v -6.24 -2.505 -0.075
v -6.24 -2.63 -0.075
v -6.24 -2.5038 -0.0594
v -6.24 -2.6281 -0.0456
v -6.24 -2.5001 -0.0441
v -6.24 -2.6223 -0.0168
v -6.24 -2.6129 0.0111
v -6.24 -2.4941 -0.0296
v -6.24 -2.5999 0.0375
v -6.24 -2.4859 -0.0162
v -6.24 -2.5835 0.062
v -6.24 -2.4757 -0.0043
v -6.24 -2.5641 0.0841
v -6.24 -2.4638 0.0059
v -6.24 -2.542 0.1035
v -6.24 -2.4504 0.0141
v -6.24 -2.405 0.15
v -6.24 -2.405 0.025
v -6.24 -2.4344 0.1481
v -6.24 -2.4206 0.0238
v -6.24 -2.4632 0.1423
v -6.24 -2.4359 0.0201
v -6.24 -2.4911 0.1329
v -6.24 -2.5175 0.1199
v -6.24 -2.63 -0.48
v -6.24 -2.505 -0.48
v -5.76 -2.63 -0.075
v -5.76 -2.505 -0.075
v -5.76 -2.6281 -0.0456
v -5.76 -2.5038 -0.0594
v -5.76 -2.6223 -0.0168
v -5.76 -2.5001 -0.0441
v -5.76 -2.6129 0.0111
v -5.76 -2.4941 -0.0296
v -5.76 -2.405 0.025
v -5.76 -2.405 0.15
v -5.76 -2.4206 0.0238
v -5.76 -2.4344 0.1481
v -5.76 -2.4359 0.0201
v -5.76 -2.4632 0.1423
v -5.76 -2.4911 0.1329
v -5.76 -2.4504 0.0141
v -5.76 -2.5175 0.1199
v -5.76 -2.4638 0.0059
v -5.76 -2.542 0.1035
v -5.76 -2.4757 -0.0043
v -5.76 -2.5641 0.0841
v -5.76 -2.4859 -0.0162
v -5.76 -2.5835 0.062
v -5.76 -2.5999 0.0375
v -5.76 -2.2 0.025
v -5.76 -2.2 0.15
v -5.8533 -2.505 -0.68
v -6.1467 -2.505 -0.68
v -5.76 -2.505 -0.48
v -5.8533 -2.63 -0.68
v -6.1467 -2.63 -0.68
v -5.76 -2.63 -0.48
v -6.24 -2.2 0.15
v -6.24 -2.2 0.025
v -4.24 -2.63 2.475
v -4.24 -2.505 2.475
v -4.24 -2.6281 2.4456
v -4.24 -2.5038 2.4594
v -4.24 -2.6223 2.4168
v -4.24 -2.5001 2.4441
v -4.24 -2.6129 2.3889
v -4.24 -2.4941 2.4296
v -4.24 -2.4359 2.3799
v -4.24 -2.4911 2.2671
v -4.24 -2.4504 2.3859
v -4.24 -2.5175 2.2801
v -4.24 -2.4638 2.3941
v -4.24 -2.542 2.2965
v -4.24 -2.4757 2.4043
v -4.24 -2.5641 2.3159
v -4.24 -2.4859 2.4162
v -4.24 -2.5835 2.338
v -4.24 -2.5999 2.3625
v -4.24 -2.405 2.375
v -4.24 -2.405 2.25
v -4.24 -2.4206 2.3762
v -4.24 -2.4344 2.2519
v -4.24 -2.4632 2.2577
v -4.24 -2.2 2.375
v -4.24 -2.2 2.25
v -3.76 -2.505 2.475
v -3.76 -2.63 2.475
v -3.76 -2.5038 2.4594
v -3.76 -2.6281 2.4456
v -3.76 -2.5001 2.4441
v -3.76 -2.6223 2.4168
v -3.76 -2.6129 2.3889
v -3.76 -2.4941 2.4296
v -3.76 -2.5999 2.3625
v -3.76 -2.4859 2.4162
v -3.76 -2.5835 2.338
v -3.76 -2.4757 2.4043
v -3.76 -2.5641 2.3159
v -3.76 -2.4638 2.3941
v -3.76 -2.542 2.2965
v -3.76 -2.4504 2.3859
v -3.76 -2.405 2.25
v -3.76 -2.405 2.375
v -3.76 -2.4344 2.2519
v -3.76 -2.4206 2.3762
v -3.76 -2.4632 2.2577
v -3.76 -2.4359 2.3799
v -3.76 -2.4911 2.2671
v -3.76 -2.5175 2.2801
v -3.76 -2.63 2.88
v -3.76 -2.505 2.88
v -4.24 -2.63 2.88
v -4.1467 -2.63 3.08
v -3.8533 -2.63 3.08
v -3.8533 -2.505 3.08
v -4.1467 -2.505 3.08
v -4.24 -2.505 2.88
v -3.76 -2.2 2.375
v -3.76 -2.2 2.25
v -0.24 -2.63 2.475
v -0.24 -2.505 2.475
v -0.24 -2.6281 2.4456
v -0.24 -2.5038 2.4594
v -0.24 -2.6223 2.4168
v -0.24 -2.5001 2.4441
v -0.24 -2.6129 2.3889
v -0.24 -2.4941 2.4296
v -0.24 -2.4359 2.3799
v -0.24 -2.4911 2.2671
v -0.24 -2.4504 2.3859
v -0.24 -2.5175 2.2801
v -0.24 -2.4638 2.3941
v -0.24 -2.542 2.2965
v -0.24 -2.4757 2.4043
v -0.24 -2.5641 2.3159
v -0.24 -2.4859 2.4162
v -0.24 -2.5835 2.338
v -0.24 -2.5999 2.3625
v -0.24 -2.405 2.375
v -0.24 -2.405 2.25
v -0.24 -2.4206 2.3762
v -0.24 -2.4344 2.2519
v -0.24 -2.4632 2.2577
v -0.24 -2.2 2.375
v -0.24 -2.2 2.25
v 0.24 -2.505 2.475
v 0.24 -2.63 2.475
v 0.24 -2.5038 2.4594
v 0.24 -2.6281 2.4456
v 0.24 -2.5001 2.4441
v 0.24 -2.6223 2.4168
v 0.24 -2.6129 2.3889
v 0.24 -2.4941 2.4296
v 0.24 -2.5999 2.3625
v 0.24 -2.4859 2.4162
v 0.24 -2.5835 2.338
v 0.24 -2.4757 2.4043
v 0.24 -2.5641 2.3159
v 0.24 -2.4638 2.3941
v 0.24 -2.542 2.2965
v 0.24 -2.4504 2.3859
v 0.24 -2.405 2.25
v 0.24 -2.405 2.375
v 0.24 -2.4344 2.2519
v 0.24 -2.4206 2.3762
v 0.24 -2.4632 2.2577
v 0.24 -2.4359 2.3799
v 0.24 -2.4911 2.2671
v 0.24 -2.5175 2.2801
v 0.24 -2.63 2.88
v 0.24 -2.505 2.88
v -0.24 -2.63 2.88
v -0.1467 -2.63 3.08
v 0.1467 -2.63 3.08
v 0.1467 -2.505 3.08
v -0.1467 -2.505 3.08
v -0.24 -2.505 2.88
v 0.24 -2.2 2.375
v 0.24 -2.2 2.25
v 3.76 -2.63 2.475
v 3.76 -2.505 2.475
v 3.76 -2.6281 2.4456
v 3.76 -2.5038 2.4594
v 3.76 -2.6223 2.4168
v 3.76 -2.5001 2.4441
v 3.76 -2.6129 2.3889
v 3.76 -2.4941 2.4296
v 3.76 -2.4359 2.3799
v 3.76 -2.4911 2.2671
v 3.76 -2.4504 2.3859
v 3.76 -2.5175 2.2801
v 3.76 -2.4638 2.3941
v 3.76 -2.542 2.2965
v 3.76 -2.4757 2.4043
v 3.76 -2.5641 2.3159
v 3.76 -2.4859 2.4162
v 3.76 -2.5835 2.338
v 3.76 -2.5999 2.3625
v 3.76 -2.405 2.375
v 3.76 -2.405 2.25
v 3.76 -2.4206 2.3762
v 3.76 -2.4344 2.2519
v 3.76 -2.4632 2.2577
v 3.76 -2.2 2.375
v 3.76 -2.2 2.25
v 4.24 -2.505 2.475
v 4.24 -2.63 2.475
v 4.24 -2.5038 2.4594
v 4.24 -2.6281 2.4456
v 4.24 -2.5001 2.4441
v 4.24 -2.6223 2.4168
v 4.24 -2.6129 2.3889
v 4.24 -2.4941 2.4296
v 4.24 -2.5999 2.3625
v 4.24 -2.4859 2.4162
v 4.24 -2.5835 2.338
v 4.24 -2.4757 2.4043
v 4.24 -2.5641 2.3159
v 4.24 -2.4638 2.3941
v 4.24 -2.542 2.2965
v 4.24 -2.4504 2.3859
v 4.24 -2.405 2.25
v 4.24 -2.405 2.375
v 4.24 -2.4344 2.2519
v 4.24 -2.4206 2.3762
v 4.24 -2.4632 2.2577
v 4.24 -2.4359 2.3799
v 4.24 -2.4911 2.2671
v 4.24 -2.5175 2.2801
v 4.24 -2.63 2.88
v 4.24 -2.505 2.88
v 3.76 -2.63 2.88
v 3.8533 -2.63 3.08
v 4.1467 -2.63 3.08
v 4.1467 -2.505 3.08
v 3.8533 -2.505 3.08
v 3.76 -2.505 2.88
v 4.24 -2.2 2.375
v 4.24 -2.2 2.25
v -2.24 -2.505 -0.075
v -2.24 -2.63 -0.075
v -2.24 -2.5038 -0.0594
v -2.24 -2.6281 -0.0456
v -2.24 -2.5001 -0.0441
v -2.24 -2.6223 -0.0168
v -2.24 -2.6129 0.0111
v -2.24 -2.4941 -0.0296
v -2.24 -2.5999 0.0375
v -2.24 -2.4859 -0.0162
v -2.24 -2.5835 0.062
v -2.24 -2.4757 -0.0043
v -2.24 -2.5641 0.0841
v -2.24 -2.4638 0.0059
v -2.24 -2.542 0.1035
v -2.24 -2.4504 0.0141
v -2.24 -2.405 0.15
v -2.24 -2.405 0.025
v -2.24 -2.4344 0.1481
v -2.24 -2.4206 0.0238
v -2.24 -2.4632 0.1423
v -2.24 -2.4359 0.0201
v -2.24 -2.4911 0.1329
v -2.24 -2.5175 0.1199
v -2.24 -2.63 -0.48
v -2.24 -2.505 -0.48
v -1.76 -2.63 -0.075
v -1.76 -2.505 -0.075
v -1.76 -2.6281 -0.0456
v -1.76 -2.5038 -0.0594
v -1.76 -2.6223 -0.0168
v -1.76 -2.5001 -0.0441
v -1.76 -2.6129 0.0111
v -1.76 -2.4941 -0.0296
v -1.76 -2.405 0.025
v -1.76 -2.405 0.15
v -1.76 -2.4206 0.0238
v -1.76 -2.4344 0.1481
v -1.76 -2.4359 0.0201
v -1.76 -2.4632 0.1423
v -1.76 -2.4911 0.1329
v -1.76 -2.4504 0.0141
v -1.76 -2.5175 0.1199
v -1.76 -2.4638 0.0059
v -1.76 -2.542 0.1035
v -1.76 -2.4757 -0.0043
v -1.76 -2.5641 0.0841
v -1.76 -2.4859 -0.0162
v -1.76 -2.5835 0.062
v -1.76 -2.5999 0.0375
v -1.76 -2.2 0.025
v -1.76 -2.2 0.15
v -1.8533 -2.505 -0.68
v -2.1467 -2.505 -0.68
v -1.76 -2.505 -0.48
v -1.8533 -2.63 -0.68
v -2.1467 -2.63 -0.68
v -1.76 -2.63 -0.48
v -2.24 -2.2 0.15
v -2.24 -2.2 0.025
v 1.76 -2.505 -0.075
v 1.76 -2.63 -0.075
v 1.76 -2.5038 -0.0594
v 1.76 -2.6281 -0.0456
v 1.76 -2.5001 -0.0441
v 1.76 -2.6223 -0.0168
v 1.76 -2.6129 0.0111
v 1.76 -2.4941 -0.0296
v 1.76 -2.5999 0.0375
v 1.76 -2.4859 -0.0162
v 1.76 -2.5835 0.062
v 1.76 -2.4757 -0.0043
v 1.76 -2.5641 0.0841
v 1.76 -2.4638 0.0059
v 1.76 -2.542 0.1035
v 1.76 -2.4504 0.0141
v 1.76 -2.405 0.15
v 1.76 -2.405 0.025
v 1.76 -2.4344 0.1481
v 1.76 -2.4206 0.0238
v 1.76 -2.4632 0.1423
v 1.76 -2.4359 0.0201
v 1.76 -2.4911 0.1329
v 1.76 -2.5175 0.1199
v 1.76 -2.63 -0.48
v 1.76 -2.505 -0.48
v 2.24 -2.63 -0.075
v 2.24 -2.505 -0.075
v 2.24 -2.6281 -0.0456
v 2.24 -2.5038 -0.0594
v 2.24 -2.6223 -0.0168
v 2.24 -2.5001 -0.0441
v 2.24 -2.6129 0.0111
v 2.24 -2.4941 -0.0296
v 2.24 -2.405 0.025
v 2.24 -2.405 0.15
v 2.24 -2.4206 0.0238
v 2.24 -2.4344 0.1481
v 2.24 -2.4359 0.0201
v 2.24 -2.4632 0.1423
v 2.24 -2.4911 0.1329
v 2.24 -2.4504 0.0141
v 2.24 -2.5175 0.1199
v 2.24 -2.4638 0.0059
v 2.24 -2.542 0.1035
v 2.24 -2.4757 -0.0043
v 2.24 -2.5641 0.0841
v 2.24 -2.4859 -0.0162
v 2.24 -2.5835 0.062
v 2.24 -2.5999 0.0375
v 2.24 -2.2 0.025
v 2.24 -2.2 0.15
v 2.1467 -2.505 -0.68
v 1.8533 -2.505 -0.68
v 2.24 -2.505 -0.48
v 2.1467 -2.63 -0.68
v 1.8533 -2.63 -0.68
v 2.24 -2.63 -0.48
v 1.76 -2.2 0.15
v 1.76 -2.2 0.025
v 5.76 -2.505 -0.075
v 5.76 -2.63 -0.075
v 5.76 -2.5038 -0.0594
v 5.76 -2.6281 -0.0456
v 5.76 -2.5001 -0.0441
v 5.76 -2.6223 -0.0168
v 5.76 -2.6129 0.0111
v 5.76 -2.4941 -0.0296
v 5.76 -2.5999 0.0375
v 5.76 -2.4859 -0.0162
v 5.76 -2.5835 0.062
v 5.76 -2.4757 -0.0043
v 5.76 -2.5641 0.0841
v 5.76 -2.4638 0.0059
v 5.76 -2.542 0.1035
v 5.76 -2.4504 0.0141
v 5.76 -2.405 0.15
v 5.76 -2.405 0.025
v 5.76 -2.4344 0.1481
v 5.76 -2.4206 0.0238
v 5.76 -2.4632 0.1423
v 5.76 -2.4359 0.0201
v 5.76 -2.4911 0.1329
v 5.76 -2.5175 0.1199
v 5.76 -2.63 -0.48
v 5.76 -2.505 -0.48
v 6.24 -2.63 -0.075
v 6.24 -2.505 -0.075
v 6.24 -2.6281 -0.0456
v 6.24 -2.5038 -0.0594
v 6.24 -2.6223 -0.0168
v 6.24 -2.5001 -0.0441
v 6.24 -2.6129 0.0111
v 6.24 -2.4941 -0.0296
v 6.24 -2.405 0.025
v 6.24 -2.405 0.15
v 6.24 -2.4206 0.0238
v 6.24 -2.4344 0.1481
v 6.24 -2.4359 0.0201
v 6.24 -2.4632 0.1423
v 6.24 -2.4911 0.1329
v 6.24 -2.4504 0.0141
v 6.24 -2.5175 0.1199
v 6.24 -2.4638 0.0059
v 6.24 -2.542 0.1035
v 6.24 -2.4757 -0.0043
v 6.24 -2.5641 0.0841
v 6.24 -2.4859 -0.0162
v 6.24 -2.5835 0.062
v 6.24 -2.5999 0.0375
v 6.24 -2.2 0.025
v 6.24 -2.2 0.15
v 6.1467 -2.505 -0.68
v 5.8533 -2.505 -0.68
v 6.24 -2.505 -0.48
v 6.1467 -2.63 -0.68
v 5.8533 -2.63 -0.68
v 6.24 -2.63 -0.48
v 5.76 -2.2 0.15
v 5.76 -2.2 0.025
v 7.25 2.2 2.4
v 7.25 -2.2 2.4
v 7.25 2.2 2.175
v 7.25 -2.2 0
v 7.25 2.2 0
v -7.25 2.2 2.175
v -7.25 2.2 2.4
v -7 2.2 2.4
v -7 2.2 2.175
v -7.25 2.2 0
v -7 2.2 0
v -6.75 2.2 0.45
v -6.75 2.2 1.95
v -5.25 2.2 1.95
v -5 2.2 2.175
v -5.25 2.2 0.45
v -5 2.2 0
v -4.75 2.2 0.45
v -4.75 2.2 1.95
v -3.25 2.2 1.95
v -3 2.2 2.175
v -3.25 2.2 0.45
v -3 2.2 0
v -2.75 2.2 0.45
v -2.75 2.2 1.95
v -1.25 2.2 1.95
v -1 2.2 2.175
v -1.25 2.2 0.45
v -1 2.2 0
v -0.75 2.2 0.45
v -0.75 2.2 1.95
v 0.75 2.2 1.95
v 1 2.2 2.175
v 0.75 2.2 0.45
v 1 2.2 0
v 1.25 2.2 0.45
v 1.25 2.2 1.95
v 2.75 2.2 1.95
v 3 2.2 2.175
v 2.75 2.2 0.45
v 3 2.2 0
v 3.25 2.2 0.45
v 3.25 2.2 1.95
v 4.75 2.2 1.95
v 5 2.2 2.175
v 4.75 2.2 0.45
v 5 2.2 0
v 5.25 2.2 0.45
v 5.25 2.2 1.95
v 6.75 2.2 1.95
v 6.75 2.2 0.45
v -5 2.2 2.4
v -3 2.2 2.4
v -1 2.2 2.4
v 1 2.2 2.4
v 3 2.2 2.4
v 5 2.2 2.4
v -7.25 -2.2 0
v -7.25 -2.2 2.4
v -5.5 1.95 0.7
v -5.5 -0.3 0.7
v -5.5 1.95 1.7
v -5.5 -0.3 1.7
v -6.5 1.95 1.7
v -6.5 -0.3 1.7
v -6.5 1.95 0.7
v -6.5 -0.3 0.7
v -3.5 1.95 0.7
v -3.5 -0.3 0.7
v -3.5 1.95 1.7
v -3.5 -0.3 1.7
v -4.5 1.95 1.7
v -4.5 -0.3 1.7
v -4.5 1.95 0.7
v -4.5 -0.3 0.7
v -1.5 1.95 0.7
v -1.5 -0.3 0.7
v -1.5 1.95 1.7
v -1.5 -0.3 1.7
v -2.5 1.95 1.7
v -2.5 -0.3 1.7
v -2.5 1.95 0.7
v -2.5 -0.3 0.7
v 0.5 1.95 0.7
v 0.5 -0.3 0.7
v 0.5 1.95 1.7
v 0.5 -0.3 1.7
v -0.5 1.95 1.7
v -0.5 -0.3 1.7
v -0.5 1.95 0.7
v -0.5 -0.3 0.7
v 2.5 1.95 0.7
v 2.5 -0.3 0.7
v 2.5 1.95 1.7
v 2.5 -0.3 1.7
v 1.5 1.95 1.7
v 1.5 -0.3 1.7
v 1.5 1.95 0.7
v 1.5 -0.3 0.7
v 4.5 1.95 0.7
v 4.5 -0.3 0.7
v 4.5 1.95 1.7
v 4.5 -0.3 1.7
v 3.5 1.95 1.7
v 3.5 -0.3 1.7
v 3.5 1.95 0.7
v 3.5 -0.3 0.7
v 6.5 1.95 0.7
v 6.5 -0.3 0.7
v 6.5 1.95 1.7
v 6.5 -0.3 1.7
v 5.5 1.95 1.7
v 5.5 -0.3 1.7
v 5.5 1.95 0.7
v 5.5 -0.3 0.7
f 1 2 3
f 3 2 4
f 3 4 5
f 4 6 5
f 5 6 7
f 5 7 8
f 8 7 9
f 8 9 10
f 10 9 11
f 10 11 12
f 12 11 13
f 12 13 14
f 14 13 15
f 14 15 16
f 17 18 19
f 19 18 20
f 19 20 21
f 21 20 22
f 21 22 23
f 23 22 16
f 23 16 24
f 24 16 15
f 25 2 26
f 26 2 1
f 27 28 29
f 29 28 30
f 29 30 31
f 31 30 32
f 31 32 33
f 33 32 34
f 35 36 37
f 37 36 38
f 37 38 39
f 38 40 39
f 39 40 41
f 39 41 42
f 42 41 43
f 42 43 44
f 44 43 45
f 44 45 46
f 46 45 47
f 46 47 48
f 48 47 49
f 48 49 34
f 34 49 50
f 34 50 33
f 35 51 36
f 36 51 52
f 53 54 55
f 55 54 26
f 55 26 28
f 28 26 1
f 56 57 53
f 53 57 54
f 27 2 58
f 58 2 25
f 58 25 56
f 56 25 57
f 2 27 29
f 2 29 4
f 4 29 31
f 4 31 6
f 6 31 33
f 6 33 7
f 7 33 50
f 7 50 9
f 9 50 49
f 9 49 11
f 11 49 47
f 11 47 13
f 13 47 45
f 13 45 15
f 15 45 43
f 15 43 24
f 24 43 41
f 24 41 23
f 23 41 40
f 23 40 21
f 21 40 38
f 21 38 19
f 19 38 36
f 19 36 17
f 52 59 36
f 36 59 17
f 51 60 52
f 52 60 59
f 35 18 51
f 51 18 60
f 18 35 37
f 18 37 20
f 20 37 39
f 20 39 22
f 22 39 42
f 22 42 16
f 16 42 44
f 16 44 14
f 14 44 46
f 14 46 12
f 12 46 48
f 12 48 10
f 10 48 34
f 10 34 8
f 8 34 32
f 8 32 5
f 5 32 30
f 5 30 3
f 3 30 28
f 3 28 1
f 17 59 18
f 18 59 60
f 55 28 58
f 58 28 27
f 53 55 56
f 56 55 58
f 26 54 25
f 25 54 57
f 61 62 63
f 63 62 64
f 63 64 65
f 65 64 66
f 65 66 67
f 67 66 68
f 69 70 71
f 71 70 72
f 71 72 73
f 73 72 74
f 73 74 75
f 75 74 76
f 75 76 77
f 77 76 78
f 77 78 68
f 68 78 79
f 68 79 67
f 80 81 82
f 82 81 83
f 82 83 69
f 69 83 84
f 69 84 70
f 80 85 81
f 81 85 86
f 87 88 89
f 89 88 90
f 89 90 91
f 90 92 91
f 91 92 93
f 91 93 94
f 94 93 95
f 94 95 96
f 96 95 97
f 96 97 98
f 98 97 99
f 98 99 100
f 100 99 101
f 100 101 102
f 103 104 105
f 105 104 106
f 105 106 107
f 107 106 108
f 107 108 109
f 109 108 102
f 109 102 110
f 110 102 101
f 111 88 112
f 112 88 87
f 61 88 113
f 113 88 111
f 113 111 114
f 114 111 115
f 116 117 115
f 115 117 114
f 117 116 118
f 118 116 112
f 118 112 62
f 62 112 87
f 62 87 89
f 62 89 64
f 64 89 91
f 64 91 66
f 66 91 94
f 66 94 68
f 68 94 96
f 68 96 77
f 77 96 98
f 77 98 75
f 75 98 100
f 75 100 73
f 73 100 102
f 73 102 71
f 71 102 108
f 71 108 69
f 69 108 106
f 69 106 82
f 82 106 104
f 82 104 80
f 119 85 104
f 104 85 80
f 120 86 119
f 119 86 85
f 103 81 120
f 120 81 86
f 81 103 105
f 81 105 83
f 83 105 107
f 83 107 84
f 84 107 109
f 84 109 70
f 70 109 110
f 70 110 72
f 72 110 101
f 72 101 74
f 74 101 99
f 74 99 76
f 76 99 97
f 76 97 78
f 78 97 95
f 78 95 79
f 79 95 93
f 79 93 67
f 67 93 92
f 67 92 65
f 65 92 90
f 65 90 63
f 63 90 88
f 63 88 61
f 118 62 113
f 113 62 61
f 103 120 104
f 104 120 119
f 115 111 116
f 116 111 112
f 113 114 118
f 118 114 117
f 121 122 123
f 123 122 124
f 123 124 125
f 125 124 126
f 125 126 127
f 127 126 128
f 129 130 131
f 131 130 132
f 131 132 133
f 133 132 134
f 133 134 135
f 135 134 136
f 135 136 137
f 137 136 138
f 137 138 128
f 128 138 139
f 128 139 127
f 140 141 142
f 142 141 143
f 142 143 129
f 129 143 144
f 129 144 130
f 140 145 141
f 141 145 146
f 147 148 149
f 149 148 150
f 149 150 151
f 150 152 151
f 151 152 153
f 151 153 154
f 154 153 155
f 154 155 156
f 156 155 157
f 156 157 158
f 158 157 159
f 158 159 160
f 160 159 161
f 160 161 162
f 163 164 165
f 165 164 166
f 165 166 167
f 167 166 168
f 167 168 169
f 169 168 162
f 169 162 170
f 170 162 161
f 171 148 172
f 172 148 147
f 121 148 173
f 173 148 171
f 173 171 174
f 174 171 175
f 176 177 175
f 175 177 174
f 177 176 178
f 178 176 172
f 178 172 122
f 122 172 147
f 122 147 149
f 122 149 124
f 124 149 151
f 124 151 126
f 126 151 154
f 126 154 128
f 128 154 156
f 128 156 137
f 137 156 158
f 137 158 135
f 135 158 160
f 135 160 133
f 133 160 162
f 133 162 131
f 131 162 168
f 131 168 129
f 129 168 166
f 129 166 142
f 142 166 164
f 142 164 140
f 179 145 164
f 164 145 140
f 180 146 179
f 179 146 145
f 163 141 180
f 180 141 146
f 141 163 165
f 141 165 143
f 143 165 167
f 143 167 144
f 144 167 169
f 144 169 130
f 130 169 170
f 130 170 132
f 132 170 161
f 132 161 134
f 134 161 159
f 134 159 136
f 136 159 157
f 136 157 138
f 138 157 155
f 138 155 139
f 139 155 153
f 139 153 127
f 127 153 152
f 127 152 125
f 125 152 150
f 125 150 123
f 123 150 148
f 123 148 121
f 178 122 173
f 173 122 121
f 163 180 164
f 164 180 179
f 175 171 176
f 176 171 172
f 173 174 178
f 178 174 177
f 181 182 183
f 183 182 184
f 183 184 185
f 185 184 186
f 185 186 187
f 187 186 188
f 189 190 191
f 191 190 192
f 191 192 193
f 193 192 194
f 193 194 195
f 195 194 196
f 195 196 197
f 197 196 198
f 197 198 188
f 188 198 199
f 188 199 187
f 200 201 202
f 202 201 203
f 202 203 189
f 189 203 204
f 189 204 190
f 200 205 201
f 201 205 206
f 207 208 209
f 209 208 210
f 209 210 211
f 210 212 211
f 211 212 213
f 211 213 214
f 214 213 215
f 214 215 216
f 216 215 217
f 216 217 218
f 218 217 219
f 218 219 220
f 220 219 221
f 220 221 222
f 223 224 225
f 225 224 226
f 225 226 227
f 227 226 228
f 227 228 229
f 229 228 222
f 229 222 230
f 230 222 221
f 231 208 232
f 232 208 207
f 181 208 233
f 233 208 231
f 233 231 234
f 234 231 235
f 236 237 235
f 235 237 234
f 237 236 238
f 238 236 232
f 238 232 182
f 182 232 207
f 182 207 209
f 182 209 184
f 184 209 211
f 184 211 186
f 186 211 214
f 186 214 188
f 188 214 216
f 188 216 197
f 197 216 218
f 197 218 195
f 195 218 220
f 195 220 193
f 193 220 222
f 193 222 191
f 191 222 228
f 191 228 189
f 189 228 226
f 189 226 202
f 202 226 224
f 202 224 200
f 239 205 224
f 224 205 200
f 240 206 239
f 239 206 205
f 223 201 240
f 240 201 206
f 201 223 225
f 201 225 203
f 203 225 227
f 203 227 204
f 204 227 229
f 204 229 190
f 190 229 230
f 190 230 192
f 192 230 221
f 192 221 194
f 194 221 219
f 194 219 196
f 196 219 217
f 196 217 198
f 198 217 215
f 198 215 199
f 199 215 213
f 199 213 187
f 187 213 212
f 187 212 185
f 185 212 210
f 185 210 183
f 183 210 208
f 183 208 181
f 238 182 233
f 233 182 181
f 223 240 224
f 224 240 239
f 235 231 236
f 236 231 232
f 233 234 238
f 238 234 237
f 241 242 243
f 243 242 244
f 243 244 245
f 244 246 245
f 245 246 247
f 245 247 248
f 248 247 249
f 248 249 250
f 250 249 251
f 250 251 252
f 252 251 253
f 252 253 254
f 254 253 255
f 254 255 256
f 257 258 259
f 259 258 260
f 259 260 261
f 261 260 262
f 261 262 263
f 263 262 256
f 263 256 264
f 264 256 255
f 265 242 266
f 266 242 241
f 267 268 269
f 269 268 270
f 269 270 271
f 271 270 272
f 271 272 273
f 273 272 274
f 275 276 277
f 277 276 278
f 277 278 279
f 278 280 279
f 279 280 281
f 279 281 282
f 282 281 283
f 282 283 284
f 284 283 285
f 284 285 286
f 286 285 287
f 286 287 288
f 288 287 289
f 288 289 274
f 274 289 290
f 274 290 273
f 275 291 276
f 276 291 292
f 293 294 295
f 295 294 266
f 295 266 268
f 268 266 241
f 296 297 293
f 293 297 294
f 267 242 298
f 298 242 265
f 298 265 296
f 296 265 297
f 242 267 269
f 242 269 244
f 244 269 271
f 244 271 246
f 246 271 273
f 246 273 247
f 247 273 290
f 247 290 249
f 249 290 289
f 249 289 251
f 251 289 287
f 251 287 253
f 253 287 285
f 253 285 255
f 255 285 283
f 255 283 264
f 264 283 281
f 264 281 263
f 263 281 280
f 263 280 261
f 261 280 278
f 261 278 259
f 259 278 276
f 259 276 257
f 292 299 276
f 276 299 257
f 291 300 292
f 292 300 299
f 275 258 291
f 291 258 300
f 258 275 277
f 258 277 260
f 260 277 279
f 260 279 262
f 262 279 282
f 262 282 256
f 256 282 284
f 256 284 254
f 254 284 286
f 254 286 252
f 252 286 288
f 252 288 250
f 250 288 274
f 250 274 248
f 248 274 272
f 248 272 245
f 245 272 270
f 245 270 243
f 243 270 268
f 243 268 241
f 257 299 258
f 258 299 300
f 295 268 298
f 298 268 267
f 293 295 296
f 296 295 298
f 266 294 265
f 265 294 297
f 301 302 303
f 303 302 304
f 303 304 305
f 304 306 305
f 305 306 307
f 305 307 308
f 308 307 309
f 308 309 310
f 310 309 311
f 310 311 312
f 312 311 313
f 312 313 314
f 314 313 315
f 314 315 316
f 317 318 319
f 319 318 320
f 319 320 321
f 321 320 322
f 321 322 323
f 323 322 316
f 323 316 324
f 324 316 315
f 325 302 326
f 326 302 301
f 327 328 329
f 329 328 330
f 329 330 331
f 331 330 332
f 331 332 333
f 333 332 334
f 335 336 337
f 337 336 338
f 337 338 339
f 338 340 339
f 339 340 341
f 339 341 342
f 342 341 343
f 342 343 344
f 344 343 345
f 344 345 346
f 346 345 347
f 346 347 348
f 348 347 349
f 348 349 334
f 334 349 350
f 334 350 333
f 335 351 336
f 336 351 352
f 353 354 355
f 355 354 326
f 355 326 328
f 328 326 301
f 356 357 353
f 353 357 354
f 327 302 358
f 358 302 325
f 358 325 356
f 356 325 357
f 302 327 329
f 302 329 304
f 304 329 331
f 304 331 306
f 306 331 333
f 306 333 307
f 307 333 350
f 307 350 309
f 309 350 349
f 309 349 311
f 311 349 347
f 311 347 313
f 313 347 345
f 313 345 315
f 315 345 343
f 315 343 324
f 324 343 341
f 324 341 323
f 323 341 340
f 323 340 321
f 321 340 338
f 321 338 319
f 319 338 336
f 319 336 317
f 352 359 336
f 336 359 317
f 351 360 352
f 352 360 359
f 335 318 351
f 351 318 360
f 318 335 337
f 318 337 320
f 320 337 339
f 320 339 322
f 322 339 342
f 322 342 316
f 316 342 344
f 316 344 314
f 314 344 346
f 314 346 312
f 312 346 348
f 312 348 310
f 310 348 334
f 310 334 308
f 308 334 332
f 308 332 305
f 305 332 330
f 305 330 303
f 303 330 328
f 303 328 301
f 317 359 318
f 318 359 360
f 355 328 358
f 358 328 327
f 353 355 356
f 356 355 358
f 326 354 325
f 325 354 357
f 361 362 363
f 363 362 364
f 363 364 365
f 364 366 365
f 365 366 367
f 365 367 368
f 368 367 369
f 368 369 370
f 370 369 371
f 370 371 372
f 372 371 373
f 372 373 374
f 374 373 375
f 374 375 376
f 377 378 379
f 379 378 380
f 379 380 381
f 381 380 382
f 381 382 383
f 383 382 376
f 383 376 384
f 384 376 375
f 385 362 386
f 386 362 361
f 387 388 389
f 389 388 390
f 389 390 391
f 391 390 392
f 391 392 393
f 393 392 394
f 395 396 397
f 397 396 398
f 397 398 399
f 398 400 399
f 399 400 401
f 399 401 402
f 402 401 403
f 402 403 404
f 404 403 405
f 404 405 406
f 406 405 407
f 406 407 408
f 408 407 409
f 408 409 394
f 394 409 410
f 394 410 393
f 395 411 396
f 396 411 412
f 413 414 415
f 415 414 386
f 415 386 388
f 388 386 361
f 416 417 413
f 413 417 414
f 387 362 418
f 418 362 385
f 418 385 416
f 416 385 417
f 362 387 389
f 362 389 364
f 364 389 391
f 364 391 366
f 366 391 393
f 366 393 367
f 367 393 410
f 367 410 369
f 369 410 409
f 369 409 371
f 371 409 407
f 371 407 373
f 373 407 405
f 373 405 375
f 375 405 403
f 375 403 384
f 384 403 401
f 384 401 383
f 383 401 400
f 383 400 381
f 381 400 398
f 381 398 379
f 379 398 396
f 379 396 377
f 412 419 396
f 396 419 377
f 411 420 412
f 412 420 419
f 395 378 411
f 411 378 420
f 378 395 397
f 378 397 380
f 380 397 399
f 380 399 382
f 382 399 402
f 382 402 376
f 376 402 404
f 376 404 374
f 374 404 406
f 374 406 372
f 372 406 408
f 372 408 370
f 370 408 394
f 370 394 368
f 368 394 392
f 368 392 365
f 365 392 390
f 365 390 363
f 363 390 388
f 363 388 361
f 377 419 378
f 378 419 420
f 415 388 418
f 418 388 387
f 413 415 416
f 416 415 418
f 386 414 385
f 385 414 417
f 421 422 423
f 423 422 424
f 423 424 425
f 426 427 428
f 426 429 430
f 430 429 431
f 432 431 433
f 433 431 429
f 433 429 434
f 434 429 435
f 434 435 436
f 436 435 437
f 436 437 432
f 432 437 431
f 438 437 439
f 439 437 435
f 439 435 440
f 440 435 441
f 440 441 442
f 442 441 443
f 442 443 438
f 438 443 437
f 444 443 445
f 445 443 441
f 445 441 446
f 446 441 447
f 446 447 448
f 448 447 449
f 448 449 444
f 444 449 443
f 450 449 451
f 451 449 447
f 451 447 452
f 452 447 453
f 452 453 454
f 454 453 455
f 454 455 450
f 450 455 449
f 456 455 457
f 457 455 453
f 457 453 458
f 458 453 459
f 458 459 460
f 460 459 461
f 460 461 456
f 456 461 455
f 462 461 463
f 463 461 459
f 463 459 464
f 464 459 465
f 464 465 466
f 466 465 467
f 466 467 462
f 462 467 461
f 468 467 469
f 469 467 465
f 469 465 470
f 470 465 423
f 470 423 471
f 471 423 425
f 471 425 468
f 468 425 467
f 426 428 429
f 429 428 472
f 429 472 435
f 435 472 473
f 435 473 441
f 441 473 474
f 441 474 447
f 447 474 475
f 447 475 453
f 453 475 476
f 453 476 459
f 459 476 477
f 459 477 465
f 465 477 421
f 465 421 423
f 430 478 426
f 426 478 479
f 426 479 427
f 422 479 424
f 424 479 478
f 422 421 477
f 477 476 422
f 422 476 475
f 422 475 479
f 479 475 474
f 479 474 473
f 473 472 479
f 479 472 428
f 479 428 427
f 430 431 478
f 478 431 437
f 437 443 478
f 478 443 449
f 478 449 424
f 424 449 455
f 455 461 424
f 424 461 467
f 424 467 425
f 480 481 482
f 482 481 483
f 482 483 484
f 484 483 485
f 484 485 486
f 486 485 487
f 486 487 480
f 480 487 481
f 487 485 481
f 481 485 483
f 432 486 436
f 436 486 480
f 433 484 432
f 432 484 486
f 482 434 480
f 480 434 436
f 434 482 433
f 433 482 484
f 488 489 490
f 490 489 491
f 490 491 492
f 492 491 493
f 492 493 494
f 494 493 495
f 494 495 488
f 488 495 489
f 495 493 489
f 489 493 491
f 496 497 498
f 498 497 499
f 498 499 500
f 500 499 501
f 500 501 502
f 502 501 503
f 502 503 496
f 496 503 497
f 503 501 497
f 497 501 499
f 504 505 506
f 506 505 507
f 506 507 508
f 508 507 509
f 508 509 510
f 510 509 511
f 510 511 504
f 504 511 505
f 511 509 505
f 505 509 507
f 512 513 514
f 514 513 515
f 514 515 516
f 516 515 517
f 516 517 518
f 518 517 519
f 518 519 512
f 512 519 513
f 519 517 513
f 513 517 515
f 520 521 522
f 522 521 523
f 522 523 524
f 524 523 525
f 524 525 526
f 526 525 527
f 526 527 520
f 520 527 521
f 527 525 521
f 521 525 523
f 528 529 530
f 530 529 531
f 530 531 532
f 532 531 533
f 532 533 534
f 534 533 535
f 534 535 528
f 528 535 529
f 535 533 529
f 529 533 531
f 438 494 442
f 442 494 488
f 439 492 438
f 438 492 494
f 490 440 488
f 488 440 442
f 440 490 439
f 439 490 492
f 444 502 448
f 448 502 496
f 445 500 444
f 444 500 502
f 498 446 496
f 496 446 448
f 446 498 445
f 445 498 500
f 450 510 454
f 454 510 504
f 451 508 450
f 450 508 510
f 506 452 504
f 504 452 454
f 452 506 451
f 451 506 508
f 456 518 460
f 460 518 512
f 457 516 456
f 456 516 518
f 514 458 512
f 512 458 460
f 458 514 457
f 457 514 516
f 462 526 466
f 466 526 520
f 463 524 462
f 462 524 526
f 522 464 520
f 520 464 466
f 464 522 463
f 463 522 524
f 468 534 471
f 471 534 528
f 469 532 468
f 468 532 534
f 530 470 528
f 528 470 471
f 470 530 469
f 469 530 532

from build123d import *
from OCP.BRepFilletAPI import BRepFilletAPI_MakeChamfer

# Parameters (mm, degrees)
SKETCH1_W                  = 14.5
SKETCH1_H                  = 4.4
BOSS_EXTRUDE1_DEPTH        = 2.4
SKETCH2_W                  = 1
SKETCH2_H                  = 1
CUT_EXTRUDE1_DEPTH         = 2.5
CHAMFER1_SIZE              = 0.25
LPATTERN6_COUNT            = 7
LPATTERN6_PITCH            = 2
CHAMFER1_OF_LPATTERN6_SIZE = 0.25
BASE_FLANGE2_DEPTH         = 0.24
BASE_FLANGE2_DEPTH_BACK    = 0.24
BASE_FLANGE3_DEPTH         = 0.24
BASE_FLANGE3_DEPTH_BACK    = 0.24
CHAMFER3_SIZE              = 0.2
CHAMFER3_SIZE2             = 0.093261532
CHAMFER4_SIZE              = 0.2
CHAMFER4_SIZE2             = 0.093261532
LPATTERN4_COUNT            = 4
LPATTERN4_PITCH            = 4
LPATTERN3_COUNT            = 3
LPATTERN3_PITCH            = 4


# Sheet-metal steps are written as plain solids
with BuildPart() as part:
    # Sketch1 → Boss-Extrude1 (new body)
    with BuildSketch(Plane.XY):
        Rectangle(SKETCH1_W, SKETCH1_H)
    extrude(amount=BOSS_EXTRUDE1_DEPTH)

    # Sketch2 → Cut-Extrude1 (cut)
    with BuildSketch(Plane(origin=(0, 2.2, 0), x_dir=(1, 0, 0), z_dir=(0, 1, 0))):
        with Locations((-6, -1.2)):
            Rectangle(SKETCH2_W, SKETCH2_H)
    cut_extrude1 = extrude(amount=-CUT_EXTRUDE1_DEPTH, mode=Mode.SUBTRACT)

    # Chamfer1
    chamfer1_edges = [part.edges().sort_by_distance(p)[0] for p in [
        (-5.5, 2.2, 1.2),
        (-6, 2.2, 0.7),
        (-6.5, 2.2, 1.2),
        (-6, 2.2, 1.7),
    ]]
    chamfer(chamfer1_edges, length=CHAMFER1_SIZE)

    # LPattern6: Cut-Extrude1 ×7
    with Locations(*[(i * LPATTERN6_PITCH, 0, 0) for i in range(1, LPATTERN6_COUNT)]):
        add(cut_extrude1, mode=Mode.SUBTRACT)

    # Chamfer1 of LPattern6
    chamfer1_of_lpattern6_edges = [part.edges().sort_by_distance(p)[0] for p in [
        (-3.5, 2.2, 1.2),
        (-4, 2.2, 0.7),
        (-4.5, 2.2, 1.2),
        (-4, 2.2, 1.7),
        (-1.5, 2.2, 1.2),
        (-2, 2.2, 0.7),
        (-2.5, 2.2, 1.2),
        (-2, 2.2, 1.7),
        (0.5, 2.2, 1.2),
        (0, 2.2, 0.7),
        (-0.5, 2.2, 1.2),
        (0, 2.2, 1.7),
        (2.5, 2.2, 1.2),
        (2, 2.2, 0.7),
        (1.5, 2.2, 1.2),
        (2, 2.2, 1.7),
        (4.5, 2.2, 1.2),
        (4, 2.2, 0.7),
        (3.5, 2.2, 1.2),
        (4, 2.2, 1.7),
        (6.5, 2.2, 1.2),
        (6, 2.2, 0.7),
        (5.5, 2.2, 1.2),
        (6, 2.2, 1.7),
    ]]
    chamfer(chamfer1_of_lpattern6_edges, length=CHAMFER1_OF_LPATTERN6_SIZE)


with BuildPart() as body_2:
    # Sketch5 → Base-Flange2 (new, two sides: drawn at the far end of the back side and taken through both)
    with BuildSketch(Plane.ZY.offset(6).offset(-BASE_FLANGE2_DEPTH_BACK)):
        with BuildLine():
            Line((0.15, -2.2), (0.15, -2.405))
            ThreePointArc((0.15, -2.405), (0.084099026, -2.564099026), (-0.075, -2.63))
            Line((-0.075, -2.63), (-0.68, -2.63))
            Line((-0.68, -2.63), (-0.68, -2.505))
            Line((-0.68, -2.505), (-0.075, -2.505))
            ThreePointArc((-0.075, -2.505), (-0.004289322, -2.475710678), (0.025, -2.405))
            Line((0.025, -2.405), (0.025, -2.2))
            Line((0.025, -2.2), (0.15, -2.2))
        make_face()
    extrude(amount=BASE_FLANGE2_DEPTH + BASE_FLANGE2_DEPTH_BACK)

    # Chamfer4: one chamfer whose edges measure the first distance from different faces: ONE call of the kernel's chamfer builder (chamfer() names one face for all edges)
    chamfer4_edges_1 = [body_2.edges().sort_by_distance(p)[0] for p in [
        (-5.76, -2.5675, -0.68),
    ]]
    chamfer4_side_1 = [body_2.faces().sort_by_distance(p)[0] for p in [
        (-5.76, -2.3025, 0.034347727),
    ]]
    chamfer4_edges_2 = [body_2.edges().sort_by_distance(p)[0] for p in [
        (-6.24, -2.5675, -0.68),
    ]]
    chamfer4_side_2 = [body_2.faces().sort_by_distance(p)[0] for p in [
        (-6.24, -2.3025, 0.034347727),
    ]]
    chamfer4 = BRepFilletAPI_MakeChamfer(body_2.part.solid().wrapped)
    for e in chamfer4_edges_1:
        chamfer4.Add(CHAMFER4_SIZE, CHAMFER4_SIZE2, e.wrapped, chamfer4_side_1[0].wrapped)  # the first distance lies on this face
    for e in chamfer4_edges_2:
        chamfer4.Add(CHAMFER4_SIZE, CHAMFER4_SIZE2, e.wrapped, chamfer4_side_2[0].wrapped)  # the first distance lies on this face
    add(Compound.cast(chamfer4.Shape()), mode=Mode.REPLACE)


with BuildPart() as body_3:
    # Sketch22 → Base-Flange3 (new, two sides: drawn at the far end of the back side and taken through both)
    with BuildSketch(Plane.ZY.offset(4).offset(-BASE_FLANGE3_DEPTH_BACK)):
        with BuildLine():
            Line((2.25, -2.2), (2.25, -2.405))
            ThreePointArc((2.25, -2.405), (2.315900974, -2.564099026), (2.475, -2.63))
            Line((2.475, -2.63), (3.08, -2.63))
            Line((3.08, -2.63), (3.08, -2.505))
            Line((3.08, -2.505), (2.475, -2.505))
            ThreePointArc((2.475, -2.505), (2.404289322, -2.475710678), (2.375, -2.405))
            Line((2.375, -2.405), (2.375, -2.2))
            Line((2.375, -2.2), (2.25, -2.2))
        make_face()
    extrude(amount=BASE_FLANGE3_DEPTH + BASE_FLANGE3_DEPTH_BACK)

    # Chamfer3: one chamfer whose edges measure the first distance from different faces: ONE call of the kernel's chamfer builder (chamfer() names one face for all edges)
    chamfer3_edges_1 = [body_3.edges().sort_by_distance(p)[0] for p in [
        (-3.76, -2.5675, 3.08),
    ]]
    chamfer3_side_1 = [body_3.faces().sort_by_distance(p)[0] for p in [
        (-3.76, -2.3025, 2.365652273),
    ]]
    chamfer3_edges_2 = [body_3.edges().sort_by_distance(p)[0] for p in [
        (-4.24, -2.5675, 3.08),
    ]]
    chamfer3_side_2 = [body_3.faces().sort_by_distance(p)[0] for p in [
        (-4.24, -2.3025, 2.365652273),
    ]]
    chamfer3 = BRepFilletAPI_MakeChamfer(body_3.part.solid().wrapped)
    for e in chamfer3_edges_1:
        chamfer3.Add(CHAMFER3_SIZE, CHAMFER3_SIZE2, e.wrapped, chamfer3_side_1[0].wrapped)  # the first distance lies on this face
    for e in chamfer3_edges_2:
        chamfer3.Add(CHAMFER3_SIZE, CHAMFER3_SIZE2, e.wrapped, chamfer3_side_2[0].wrapped)  # the first distance lies on this face
    add(Compound.cast(chamfer3.Shape()), mode=Mode.REPLACE)


with BuildPart() as lpattern4_1:
    # LPattern4: pattern copy
    add(body_2.part.moved(Location(Vector(1, 0, 0) * (1 * LPATTERN4_PITCH))))


with BuildPart() as lpattern4_2:
    # LPattern4: pattern copy
    add(body_2.part.moved(Location(Vector(1, 0, 0) * (2 * LPATTERN4_PITCH))))


with BuildPart() as lpattern4_3:
    # LPattern4: pattern copy
    add(body_2.part.moved(Location(Vector(1, 0, 0) * (3 * LPATTERN4_PITCH))))


with BuildPart() as lpattern3_1:
    # LPattern3: pattern copy
    add(body_3.part.moved(Location(Vector(1, 0, 0) * (1 * LPATTERN3_PITCH))))


with BuildPart() as lpattern3_2:
    # LPattern3: pattern copy
    add(body_3.part.moved(Location(Vector(1, 0, 0) * (2 * LPATTERN3_PITCH))))


solid = Compound([part.part, body_2.part, body_3.part, lpattern4_1.part, lpattern4_2.part, lpattern4_3.part, lpattern3_1.part, lpattern3_2.part])
